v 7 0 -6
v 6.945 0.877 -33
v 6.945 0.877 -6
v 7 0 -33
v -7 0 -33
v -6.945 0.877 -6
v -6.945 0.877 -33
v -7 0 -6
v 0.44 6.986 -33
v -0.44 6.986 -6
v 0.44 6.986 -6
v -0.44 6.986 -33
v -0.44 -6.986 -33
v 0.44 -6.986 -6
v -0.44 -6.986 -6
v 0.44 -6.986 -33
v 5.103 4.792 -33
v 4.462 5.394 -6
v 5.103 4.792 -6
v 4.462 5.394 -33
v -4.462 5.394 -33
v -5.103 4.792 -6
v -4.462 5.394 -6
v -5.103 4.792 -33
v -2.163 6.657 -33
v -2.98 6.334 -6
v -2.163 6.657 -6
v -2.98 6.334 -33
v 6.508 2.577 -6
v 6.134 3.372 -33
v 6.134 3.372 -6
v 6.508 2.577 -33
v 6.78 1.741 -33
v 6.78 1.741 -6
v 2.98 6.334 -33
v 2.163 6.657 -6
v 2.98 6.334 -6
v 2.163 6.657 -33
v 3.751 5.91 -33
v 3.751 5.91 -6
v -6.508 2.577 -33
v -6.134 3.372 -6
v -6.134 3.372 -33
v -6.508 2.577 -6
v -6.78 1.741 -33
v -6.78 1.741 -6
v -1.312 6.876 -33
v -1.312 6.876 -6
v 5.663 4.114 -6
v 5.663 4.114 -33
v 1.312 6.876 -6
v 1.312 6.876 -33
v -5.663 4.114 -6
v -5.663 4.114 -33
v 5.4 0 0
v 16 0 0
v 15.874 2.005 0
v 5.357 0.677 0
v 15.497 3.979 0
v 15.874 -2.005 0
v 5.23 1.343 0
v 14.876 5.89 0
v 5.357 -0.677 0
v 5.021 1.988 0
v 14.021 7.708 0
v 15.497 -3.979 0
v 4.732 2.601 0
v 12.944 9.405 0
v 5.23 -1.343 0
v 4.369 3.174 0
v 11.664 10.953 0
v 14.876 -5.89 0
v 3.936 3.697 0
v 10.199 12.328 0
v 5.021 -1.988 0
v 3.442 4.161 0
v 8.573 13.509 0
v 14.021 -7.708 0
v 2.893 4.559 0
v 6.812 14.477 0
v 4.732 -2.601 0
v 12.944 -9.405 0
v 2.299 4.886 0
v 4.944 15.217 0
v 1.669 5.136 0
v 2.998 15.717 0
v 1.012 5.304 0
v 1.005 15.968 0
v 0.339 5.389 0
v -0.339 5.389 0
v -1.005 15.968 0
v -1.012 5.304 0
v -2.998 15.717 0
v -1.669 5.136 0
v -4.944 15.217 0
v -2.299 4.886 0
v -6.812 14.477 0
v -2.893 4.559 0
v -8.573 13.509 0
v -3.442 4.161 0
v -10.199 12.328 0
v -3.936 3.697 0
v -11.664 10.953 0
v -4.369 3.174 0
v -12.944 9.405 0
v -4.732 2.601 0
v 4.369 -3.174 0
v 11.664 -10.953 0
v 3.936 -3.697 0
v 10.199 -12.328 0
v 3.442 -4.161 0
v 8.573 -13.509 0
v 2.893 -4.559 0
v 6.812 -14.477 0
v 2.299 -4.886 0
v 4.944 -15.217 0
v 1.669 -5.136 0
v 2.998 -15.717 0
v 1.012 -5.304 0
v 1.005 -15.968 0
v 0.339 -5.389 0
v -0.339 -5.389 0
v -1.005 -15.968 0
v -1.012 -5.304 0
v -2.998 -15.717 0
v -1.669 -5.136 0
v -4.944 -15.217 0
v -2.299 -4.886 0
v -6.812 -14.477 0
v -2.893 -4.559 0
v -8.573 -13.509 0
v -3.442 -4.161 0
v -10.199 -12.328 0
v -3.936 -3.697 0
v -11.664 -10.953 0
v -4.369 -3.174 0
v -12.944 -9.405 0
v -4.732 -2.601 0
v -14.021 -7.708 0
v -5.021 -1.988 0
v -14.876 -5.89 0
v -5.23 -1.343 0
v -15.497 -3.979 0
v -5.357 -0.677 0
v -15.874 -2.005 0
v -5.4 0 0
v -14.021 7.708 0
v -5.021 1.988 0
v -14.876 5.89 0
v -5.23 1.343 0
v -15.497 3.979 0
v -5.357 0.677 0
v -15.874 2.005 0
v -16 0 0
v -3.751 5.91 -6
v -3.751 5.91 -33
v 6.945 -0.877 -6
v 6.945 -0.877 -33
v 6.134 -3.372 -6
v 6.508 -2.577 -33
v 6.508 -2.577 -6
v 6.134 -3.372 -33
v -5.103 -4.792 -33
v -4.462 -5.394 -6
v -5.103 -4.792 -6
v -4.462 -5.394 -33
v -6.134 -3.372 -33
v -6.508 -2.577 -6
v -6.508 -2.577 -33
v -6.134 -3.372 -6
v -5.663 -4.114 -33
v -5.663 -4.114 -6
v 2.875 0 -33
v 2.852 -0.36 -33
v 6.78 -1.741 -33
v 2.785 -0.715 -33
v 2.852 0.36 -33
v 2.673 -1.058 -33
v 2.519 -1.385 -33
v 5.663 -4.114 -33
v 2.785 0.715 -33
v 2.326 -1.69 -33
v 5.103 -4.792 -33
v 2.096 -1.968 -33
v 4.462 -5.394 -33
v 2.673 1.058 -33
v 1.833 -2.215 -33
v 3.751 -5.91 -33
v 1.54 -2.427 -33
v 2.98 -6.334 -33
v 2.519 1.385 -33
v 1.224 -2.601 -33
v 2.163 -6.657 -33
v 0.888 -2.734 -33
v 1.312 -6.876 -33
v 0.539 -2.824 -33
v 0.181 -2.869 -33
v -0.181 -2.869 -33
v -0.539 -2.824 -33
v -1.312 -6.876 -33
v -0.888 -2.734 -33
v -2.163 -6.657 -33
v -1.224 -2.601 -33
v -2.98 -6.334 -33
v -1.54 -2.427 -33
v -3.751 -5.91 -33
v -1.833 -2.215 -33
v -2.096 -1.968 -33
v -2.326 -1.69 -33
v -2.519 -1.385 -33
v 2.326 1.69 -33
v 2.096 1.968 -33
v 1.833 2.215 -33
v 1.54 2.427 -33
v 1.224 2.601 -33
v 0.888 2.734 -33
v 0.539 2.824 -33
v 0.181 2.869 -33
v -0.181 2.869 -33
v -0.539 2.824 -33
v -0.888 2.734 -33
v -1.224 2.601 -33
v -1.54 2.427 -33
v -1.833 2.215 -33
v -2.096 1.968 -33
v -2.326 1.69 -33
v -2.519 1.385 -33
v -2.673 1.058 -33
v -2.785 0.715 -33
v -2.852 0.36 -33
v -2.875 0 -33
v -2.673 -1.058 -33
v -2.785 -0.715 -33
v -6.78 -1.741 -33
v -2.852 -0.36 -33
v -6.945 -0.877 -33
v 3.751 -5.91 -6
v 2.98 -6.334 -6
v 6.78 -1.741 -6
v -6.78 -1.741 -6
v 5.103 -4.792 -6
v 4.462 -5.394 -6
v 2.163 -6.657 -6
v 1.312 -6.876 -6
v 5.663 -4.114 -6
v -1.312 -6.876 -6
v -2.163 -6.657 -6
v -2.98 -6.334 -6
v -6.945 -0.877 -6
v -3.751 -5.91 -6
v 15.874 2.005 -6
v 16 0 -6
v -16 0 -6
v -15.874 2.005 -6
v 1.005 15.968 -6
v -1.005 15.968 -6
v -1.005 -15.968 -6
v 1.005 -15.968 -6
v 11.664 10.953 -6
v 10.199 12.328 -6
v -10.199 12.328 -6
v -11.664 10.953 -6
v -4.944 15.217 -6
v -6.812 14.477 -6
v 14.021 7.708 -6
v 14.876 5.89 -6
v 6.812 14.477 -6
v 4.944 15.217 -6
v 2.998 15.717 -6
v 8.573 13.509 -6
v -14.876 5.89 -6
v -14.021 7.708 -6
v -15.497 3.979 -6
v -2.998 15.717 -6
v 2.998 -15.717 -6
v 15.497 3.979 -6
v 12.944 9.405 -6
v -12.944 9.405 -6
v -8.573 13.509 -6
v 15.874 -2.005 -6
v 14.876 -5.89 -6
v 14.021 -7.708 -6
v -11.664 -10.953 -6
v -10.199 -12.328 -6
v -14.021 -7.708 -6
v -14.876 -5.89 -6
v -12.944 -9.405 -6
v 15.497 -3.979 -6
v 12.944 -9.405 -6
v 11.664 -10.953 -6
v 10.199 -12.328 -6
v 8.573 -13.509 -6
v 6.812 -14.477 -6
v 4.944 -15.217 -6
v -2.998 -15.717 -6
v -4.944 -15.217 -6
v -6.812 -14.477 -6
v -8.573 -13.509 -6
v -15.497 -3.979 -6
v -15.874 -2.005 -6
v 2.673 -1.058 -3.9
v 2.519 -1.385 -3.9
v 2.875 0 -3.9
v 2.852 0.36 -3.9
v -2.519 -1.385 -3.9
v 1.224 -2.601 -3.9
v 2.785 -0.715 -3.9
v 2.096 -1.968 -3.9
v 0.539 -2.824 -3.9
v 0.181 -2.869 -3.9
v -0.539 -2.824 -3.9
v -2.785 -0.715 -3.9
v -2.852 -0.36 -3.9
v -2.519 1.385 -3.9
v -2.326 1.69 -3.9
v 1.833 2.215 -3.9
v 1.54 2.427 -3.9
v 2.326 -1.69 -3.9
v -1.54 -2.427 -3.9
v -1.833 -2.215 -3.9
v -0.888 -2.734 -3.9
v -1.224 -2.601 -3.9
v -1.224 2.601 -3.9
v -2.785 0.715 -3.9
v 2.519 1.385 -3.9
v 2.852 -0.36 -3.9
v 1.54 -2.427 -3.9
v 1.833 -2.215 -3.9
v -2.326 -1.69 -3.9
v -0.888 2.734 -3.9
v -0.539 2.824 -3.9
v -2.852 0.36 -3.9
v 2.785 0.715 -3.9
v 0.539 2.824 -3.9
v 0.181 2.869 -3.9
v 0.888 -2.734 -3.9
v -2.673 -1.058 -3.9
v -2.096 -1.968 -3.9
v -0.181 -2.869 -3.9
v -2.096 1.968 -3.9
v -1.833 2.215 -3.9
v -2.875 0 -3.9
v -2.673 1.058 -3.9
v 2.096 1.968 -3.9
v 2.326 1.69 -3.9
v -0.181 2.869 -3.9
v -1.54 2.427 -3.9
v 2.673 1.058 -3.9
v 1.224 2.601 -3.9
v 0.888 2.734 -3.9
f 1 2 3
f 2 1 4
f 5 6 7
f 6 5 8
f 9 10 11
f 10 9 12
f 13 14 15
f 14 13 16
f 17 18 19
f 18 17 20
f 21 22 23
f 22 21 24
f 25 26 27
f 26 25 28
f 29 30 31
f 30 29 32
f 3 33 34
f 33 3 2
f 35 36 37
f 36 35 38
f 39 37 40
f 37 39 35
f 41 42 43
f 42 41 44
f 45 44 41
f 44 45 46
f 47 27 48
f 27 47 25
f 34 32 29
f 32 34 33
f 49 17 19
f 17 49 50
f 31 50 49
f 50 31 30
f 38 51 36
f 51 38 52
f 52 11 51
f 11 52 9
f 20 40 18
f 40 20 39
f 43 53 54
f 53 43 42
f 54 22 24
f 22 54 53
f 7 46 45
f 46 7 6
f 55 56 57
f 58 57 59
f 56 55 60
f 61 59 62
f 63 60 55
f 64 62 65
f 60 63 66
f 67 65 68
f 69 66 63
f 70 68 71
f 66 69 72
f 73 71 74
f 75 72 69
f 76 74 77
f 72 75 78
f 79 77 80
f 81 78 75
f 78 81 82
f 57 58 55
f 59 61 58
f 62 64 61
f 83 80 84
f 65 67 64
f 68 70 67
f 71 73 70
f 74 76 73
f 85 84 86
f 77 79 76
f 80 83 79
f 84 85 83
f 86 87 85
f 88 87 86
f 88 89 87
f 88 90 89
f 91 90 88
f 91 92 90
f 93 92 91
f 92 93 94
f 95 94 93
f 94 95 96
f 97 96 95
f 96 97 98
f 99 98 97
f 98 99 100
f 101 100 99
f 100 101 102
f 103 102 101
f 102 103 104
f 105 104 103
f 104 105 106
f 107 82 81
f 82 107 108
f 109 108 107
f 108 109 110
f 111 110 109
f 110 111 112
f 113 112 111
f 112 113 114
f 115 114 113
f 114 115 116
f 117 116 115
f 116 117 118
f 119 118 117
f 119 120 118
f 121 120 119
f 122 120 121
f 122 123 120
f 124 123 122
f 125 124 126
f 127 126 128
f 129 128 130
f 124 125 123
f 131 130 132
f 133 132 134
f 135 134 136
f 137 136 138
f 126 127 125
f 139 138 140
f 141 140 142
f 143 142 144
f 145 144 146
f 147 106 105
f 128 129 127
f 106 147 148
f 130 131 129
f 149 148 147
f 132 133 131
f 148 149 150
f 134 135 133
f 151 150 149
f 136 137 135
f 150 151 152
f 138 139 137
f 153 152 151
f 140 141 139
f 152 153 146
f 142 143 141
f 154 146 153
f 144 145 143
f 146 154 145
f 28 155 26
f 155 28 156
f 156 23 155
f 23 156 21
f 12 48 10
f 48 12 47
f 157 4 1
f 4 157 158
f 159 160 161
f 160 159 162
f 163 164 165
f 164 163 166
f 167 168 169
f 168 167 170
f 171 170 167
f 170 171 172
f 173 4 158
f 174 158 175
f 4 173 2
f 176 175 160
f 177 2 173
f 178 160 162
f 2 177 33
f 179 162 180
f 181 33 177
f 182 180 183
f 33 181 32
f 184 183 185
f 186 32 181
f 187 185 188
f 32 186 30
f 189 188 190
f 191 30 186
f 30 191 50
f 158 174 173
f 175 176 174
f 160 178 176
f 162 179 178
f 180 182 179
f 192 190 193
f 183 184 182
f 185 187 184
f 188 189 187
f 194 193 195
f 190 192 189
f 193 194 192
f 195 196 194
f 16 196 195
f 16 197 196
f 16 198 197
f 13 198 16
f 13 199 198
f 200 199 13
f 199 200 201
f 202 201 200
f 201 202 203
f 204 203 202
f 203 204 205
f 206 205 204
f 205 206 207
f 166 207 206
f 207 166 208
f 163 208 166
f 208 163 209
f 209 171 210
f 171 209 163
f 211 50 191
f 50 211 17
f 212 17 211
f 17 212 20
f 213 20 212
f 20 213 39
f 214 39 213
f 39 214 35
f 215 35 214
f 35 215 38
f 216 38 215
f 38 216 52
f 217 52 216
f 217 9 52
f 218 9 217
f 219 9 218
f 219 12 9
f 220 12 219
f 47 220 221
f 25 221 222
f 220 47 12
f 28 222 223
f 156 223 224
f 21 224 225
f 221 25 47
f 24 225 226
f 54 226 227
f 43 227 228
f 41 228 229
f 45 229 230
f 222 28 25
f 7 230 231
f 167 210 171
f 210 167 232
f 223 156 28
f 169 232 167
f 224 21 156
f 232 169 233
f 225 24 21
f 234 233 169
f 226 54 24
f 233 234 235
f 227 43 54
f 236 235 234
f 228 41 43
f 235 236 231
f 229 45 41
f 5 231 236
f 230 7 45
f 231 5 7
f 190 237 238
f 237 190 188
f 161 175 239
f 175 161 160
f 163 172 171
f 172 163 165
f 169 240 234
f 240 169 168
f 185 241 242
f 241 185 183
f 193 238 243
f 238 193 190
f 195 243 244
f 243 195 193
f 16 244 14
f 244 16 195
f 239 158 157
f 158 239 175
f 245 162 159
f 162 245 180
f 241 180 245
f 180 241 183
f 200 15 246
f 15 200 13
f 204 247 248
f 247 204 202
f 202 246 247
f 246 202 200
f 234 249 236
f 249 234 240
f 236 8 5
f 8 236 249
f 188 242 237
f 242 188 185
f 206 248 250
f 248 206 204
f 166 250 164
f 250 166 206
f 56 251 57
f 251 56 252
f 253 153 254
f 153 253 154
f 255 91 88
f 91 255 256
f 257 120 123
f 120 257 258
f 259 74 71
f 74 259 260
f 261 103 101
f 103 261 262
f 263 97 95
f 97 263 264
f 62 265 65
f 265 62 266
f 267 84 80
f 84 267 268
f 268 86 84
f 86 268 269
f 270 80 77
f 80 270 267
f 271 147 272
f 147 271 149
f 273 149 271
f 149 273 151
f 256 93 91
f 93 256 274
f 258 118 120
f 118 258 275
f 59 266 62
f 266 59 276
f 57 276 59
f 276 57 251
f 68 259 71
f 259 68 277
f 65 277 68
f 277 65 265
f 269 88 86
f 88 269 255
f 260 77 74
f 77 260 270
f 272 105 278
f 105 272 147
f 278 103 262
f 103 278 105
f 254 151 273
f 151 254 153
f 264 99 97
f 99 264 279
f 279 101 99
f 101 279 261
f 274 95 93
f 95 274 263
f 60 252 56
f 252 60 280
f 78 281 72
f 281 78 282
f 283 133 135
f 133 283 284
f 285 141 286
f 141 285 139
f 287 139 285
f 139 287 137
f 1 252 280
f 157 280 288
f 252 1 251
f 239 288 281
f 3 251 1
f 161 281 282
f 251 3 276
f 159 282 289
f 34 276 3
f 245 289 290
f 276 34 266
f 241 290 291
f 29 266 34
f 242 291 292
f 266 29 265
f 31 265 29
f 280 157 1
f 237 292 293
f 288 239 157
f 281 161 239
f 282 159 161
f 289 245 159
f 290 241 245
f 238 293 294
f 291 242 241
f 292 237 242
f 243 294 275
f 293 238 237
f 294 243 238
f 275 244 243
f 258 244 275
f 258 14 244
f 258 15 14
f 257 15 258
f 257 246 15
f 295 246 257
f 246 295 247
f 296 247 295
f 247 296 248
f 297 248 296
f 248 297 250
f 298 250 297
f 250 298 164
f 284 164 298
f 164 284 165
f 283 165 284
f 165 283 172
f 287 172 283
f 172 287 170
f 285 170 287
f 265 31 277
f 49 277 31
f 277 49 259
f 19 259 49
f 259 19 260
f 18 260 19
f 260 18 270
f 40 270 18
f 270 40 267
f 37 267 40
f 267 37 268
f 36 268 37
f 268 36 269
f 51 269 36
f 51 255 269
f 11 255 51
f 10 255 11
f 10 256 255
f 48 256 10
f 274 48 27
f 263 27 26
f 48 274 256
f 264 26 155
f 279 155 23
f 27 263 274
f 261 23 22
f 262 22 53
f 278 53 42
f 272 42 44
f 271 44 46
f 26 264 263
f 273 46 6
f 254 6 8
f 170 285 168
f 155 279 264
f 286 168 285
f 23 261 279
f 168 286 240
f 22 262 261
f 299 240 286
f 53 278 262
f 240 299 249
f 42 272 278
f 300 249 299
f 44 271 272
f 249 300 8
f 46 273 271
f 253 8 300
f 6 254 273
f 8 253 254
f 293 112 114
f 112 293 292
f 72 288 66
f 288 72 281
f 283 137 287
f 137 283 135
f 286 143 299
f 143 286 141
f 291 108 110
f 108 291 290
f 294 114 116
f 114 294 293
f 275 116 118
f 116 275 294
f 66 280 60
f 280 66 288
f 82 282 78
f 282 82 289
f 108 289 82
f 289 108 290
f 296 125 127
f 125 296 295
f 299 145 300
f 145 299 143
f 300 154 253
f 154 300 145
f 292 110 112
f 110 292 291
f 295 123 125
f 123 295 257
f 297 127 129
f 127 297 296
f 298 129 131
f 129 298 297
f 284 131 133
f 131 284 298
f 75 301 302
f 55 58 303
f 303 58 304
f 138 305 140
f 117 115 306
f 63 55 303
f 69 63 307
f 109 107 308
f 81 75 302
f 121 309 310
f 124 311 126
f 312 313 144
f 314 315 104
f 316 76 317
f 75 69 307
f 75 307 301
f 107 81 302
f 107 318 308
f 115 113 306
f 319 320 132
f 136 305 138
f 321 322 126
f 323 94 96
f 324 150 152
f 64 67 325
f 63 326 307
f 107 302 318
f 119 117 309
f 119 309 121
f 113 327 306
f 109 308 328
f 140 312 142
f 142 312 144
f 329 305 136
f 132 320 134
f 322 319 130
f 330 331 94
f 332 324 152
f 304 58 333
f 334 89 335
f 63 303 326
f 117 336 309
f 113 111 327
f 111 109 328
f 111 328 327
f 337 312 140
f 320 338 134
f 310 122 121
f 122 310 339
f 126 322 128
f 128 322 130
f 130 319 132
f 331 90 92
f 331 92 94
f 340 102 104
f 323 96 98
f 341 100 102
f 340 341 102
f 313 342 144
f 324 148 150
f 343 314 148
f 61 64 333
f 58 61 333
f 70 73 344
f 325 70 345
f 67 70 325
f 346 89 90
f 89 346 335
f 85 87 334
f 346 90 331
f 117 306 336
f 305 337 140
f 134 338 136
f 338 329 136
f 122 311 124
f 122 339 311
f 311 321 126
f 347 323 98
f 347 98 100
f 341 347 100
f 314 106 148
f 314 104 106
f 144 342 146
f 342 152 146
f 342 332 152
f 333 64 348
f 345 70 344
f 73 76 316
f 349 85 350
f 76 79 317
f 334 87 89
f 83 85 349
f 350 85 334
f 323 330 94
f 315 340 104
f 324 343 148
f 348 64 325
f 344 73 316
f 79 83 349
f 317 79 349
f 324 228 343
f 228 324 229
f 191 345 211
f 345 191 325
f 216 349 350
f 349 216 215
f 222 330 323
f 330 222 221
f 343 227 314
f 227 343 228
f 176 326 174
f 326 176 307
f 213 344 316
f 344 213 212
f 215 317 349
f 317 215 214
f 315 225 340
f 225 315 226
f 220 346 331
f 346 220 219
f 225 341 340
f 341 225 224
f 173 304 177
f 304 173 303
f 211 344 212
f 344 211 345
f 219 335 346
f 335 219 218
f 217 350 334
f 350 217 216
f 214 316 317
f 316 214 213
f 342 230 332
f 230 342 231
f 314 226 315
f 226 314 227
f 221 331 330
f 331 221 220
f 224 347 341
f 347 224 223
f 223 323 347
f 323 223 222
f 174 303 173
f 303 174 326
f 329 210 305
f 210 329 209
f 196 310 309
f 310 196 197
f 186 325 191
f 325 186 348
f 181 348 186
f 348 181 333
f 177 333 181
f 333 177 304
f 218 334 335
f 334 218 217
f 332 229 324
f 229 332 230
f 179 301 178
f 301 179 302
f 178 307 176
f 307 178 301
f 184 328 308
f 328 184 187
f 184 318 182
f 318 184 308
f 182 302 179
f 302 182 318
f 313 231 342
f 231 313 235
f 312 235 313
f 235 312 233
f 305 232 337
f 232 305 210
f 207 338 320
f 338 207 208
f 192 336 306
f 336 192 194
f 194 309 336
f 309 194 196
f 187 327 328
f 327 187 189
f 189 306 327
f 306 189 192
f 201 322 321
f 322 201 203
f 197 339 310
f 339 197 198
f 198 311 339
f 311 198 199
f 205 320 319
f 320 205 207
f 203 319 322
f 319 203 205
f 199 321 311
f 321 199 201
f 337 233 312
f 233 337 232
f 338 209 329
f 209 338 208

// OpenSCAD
$fn = 50;


difference() {
	union() {
		translate(v = [0, 0, -33.0000000000]) {
			cylinder(h = 33, r = 7.0000000000);
		}
		translate(v = [0, 0, -6.0000000000]) {
			cylinder(h = 6, r = 16.0000000000);
		}
	}
	union() {
		translate(v = [0, 0, 0]) {
			rotate(a = [0, 0, 0]) {
				difference() {
					union() {
						#translate(v = [0, 0, -33.0000000000]) {
							cylinder(h = 33, r = 2.6000000000);
						}
						#translate(v = [0, 0, -3.9000000000]) {
							cylinder(h = 3.9000000000, r1 = 2.8750000000, r2 = 5.4000000000);
						}
						#translate(v = [0, 0, -33.0000000000]) {
							cylinder(h = 33, r = 2.8750000000);
						}
						#translate(v = [0, 0, -33.0000000000]) {
							cylinder(h = 33, r = 2.6000000000);
						}
					}
					union();
				}
			}
		}
	}
}
